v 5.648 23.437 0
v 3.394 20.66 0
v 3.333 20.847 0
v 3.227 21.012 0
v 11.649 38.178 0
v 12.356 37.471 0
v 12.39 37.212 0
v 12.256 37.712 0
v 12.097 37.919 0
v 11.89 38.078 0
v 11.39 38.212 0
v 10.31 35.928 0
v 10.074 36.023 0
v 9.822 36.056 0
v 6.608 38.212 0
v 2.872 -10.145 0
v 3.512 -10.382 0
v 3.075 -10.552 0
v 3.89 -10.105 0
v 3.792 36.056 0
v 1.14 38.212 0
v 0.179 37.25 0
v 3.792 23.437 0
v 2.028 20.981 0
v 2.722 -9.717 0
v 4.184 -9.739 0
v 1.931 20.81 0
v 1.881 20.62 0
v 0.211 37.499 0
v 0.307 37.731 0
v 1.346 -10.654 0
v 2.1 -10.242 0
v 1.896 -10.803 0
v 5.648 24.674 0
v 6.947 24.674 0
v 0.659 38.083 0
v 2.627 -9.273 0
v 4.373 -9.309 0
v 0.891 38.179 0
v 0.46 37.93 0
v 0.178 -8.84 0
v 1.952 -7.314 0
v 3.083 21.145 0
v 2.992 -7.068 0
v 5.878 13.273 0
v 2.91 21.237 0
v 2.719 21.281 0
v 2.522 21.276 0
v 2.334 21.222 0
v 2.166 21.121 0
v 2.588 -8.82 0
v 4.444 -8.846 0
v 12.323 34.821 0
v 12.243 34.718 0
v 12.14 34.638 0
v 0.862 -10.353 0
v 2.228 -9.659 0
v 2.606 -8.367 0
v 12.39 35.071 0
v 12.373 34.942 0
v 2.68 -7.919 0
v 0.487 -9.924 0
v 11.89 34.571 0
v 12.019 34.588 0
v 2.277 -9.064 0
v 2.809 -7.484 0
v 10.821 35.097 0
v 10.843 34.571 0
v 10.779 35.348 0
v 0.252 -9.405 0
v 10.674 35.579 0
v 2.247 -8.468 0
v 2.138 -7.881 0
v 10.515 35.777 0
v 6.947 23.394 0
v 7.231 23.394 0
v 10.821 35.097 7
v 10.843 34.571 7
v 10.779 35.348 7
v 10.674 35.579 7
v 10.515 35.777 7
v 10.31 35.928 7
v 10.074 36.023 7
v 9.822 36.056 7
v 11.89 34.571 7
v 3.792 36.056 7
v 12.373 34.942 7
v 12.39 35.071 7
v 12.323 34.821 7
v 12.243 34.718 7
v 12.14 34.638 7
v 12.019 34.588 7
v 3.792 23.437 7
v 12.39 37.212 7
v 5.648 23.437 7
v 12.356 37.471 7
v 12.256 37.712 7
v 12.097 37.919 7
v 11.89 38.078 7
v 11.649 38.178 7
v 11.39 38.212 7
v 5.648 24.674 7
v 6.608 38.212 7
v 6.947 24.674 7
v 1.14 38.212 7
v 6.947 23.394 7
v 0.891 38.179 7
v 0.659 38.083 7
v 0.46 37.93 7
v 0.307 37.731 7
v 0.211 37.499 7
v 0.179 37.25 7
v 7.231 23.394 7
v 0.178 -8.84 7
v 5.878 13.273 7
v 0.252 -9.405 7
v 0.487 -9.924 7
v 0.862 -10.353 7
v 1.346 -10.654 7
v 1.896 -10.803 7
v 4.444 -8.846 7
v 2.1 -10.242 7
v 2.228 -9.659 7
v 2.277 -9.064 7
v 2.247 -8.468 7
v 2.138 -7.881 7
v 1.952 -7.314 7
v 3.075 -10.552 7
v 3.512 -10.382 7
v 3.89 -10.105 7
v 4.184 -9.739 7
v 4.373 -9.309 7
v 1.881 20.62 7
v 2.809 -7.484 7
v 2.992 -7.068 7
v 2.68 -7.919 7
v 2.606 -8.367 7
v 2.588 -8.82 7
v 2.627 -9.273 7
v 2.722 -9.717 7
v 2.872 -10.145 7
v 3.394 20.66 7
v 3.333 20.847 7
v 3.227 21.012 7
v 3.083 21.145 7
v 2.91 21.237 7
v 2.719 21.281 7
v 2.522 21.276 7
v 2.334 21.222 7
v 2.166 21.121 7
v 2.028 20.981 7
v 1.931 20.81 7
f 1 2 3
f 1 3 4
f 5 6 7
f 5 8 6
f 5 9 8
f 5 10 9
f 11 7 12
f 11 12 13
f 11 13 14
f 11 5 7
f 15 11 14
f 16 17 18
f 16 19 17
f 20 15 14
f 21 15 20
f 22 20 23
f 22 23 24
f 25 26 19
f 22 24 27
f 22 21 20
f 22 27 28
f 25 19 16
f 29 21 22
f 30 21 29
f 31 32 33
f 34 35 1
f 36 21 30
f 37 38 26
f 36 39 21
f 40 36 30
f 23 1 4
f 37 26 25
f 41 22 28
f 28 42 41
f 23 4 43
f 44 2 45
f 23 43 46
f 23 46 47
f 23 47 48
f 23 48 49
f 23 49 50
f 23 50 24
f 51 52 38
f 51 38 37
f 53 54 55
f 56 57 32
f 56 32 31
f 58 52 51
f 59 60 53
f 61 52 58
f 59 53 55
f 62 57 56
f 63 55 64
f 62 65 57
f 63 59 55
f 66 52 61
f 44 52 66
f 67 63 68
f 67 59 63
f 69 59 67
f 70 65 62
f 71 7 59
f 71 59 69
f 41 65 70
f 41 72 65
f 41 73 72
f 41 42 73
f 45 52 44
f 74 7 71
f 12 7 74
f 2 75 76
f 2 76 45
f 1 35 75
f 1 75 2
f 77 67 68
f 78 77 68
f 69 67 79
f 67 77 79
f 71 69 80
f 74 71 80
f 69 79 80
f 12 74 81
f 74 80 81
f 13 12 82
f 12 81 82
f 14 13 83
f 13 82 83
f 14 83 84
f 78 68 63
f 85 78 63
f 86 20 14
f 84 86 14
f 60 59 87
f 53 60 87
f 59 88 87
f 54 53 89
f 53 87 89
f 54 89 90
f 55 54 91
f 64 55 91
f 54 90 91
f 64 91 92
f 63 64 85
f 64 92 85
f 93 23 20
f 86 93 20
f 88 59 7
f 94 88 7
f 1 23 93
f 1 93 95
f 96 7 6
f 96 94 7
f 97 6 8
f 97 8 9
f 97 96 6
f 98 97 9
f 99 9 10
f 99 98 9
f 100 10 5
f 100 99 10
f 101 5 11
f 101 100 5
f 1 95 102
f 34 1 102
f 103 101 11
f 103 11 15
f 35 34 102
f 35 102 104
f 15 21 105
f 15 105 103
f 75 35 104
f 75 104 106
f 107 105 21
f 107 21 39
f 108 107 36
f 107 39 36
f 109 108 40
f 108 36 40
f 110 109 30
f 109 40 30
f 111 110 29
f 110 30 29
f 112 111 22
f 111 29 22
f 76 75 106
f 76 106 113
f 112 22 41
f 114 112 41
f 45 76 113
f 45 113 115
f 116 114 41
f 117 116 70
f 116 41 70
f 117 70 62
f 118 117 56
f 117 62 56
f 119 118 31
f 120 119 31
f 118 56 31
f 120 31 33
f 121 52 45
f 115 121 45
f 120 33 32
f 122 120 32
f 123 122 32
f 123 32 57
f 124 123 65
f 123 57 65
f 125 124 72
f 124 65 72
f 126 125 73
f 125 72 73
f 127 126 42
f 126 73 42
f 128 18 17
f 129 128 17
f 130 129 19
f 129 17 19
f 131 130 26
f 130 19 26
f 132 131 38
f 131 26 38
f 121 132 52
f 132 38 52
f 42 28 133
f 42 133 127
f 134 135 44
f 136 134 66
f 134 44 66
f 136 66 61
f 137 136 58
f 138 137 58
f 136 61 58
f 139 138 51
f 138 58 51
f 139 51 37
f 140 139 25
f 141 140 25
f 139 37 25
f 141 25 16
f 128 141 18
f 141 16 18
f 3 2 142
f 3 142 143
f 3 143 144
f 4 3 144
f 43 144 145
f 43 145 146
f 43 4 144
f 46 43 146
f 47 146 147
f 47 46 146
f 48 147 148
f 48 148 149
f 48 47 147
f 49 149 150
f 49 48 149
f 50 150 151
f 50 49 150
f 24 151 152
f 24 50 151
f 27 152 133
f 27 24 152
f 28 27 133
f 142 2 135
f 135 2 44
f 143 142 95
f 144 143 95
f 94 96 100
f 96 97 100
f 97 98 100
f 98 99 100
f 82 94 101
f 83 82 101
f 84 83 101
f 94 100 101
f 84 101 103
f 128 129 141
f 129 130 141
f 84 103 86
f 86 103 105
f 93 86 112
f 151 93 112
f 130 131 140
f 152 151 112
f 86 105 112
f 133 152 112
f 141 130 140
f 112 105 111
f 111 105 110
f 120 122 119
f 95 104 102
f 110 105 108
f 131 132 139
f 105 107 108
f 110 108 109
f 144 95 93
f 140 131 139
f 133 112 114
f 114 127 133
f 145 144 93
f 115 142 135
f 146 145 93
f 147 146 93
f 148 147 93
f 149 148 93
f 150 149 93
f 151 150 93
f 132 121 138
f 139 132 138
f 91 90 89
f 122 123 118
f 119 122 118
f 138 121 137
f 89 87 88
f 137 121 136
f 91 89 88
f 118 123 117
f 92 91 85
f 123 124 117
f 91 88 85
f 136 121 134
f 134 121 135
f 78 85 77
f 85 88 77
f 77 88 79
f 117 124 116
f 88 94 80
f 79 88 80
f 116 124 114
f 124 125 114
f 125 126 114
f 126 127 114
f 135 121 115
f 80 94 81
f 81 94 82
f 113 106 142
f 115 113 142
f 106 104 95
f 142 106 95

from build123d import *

# Parameters (mm, degrees)
PAD_DEPTH   = 7
FILLET_R    = 0.5
FILLET001_R = 1
FILLET002_R = 1


with BuildPart() as part:
    # Sketch → Pad (new body)
    with BuildSketch(Plane.XY):
        with BuildLine():
            Line((1.140353, 38.211909), (6.608476, 38.211909))
            Line((12.389766, 38.211909), (6.608476, 38.211909))
            Line((12.389766, 34.571056), (12.389766, 38.211909))
            Line((10.843417, 34.571056), (12.389766, 34.571056))
            Line((10.781564, 36.055546), (10.843417, 34.571056))
            Line((3.792074, 36.055546), (10.781564, 36.055546))
            Line((3.792074, 23.437357), (3.792074, 36.055546))
            Line((3.792074, 23.437357), (5.64769, 23.437357))
            Line((5.64769, 23.437357), (5.64769, 24.674435))
            Line((5.64769, 24.674435), (6.946622, 24.674435))
            Line((6.946622, 24.674435), (6.946622, 23.394299))
            Line((6.946622, 23.394299), (7.230929, 23.394299))
            Line((7.230929, 23.394299), (5.878444, 13.2727))
            Line((4.444027, -8.845778), (5.878444, 13.2727))
            ThreePointArc((3.074544, -10.551747), (4.049152, -9.931456), (4.444027, -8.845778))
            ThreePointArc((2.99206, -7.068146), (2.588113, -8.820488), (3.074544, -10.551747))
            Line((3.393693, 20.659941), (2.99206, -7.068146))
            ThreePointArc((3.393693, 20.659941), (2.620383, 21.285237), (1.880762, 20.620434))
            Line((1.880762, 20.620434), (1.952176, -7.313535))
            ThreePointArc((1.895787, -10.802761), (2.277294, -9.063858), (1.952176, -7.313535))
            ThreePointArc((0.177781, -8.839589), (0.658741, -10.152007), (1.895787, -10.802761))
            Line((0.178586, 37.250143), (0.177781, -8.839589))
            ThreePointArc((1.140353, 38.211909), (0.460281, 37.930214), (0.178586, 37.250143))
        make_face()
    extrude(amount=PAD_DEPTH)

    # Fillet
    fillet_edges = [part.edges().sort_by_distance(p)[0] for p in [
        (12.389766, 34.571056, 3.5),
    ]]
    fillet(fillet_edges, radius=FILLET_R)

    # Fillet001
    fillet001_edges = [part.edges().sort_by_distance(p)[0] for p in [
        (12.389766, 38.211909, 3.5),
    ]]
    fillet(fillet001_edges, radius=FILLET001_R)

    # Fillet002
    fillet002_edges = [part.edges().sort_by_distance(p)[0] for p in [
        (10.781564, 36.055546, 3.5),
    ]]
    fillet(fillet002_edges, radius=FILLET002_R)


solid = part.part
